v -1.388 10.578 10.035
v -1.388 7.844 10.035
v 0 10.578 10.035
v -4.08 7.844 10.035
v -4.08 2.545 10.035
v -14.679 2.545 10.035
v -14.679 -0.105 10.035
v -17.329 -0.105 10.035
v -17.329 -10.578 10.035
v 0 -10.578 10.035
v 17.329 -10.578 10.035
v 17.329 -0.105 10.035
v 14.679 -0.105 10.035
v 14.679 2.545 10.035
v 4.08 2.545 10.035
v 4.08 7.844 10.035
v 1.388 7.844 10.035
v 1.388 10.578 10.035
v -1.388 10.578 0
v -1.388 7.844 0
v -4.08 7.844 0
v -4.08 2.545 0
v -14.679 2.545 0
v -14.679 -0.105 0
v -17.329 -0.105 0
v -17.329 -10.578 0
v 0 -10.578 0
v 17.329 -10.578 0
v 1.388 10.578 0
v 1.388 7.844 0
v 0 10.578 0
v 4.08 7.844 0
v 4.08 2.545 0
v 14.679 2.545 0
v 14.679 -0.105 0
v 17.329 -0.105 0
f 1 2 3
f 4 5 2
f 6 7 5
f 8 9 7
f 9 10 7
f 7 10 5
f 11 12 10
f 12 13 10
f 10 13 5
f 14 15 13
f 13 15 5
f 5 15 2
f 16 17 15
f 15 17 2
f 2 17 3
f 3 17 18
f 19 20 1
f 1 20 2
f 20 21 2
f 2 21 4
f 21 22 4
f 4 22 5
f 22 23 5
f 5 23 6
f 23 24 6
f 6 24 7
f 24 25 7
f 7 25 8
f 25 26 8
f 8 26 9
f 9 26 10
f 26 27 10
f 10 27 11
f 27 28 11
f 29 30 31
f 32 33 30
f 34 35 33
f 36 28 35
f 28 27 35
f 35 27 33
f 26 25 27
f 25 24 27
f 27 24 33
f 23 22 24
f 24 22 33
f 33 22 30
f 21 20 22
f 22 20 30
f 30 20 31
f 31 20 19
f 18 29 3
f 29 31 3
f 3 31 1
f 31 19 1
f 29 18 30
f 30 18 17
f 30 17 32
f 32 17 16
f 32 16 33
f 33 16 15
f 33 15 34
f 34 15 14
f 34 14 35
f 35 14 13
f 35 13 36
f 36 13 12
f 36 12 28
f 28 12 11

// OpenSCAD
module invaders_v2_canon() 
{
	polyhedron(
		points=[
			[-1.387962, 10.57798, 10.03544],
			[-1.387962, 7.844114, 10.03544],
			[0.0, 10.57798, 10.03544],
			[-4.079773, 7.844114, 10.03544],
			[-4.079773, 2.544603, 10.03544],
			[-1.387962, 7.844114, 10.03544],
			[-14.67878, 2.544603, 10.03544],
			[-14.67878, -0.1051502, 10.03544],
			[-4.079773, 2.544603, 10.03544],
			[-17.32853, -0.1051502, 10.03544],
			[-17.32853, -10.57798, 10.03544],
			[-14.67878, -0.1051502, 10.03544],
			[-17.32853, -10.57798, 10.03544],
			[0.0, -10.57798, 10.03544],
			[-14.67878, -0.1051502, 10.03544],
			[-14.67878, -0.1051502, 10.03544],
			[0.0, -10.57798, 10.03544],
			[-4.079773, 2.544603, 10.03544],
			[17.32853, -10.57798, 10.03544],
			[17.32853, -0.1051502, 10.03544],
			[0.0, -10.57798, 10.03544],
			[17.32853, -0.1051502, 10.03544],
			[14.67878, -0.1051502, 10.03544],
			[0.0, -10.57798, 10.03544],
			[0.0, -10.57798, 10.03544],
			[14.67878, -0.1051502, 10.03544],
			[-4.079773, 2.544603, 10.03544],
			[14.67878, 2.544603, 10.03544],
			[4.079773, 2.544603, 10.03544],
			[14.67878, -0.1051502, 10.03544],
			[14.67878, -0.1051502, 10.03544],
			[4.079773, 2.544603, 10.03544],
			[-4.079773, 2.544603, 10.03544],
			[-4.079773, 2.544603, 10.03544],
			[4.079773, 2.544603, 10.03544],
			[-1.387962, 7.844114, 10.03544],
			[4.079773, 7.844114, 10.03544],
			[1.387962, 7.844114, 10.03544],
			[4.079773, 2.544603, 10.03544],
			[4.079773, 2.544603, 10.03544],
			[1.387962, 7.844114, 10.03544],
			[-1.387962, 7.844114, 10.03544],
			[-1.387962, 7.844114, 10.03544],
			[1.387962, 7.844114, 10.03544],
			[0.0, 10.57798, 10.03544],
			[0.0, 10.57798, 10.03544],
			[1.387962, 7.844114, 10.03544],
			[1.387962, 10.57798, 10.03544],
			[-1.387962, 10.57798, 0.0],
			[-1.387962, 7.844114, 2.220446e-16],
			[-1.387962, 10.57798, 10.03544],
			[-1.387962, 10.57798, 10.03544],
			[-1.387962, 7.844114, 2.220446e-16],
			[-1.387962, 7.844114, 10.03544],
			[-1.387962, 7.844114, 2.220446e-16],
			[-4.079773, 7.844114, 2.220446e-16],
			[-1.387962, 7.844114, 10.03544],
			[-1.387962, 7.844114, 10.03544],
			[-4.079773, 7.844114, 2.220446e-16],
			[-4.079773, 7.844114, 10.03544],
			[-4.079773, 7.844114, 2.220446e-16],
			[-4.079773, 2.544603, 4.440892e-16],
			[-4.079773, 7.844114, 10.03544],
			[-4.079773, 7.844114, 10.03544],
			[-4.079773, 2.544603, 4.440892e-16],
			[-4.079773, 2.544603, 10.03544],
			[-4.079773, 2.544603, 4.440892e-16],
			[-14.67878, 2.544603, 4.440892e-16],
			[-4.079773, 2.544603, 10.03544],
			[-4.079773, 2.544603, 10.03544],
			[-14.67878, 2.544603, 4.440892e-16],
			[-14.67878, 2.544603, 10.03544],
			[-14.67878, 2.544603, 4.440892e-16],
			[-14.67878, -0.1051502, 6.661338e-16],
			[-14.67878, 2.544603, 10.03544],
			[-14.67878, 2.544603, 10.03544],
			[-14.67878, -0.1051502, 6.661338e-16],
			[-14.67878, -0.1051502, 10.03544],
			[-14.67878, -0.1051502, 6.661338e-16],
			[-17.32853, -0.1051502, 6.661338e-16],
			[-14.67878, -0.1051502, 10.03544],
			[-14.67878, -0.1051502, 10.03544],
			[-17.32853, -0.1051502, 6.661338e-16],
			[-17.32853, -0.1051502, 10.03544],
			[-17.32853, -0.1051502, 6.661338e-16],
			[-17.32853, -10.57798, 1.332268e-15],
			[-17.32853, -0.1051502, 10.03544],
			[-17.32853, -0.1051502, 10.03544],
			[-17.32853, -10.57798, 1.332268e-15],
			[-17.32853, -10.57798, 10.03544],
			[-17.32853, -10.57798, 10.03544],
			[-17.32853, -10.57798, 1.332268e-15],
			[0.0, -10.57798, 10.03544],
			[-17.32853, -10.57798, 1.332268e-15],
			[0.0, -10.57798, 1.332268e-15],
			[0.0, -10.57798, 10.03544],
			[0.0, -10.57798, 10.03544],
			[0.0, -10.57798, 1.332268e-15],
			[17.32853, -10.57798, 10.03544],
			[0.0, -10.57798, 1.332268e-15],
			[17.32853, -10.57798, 1.332268e-15],
			[17.32853, -10.57798, 10.03544],
			[1.387962, 10.57798, 0.0],
			[1.387962, 7.844114, 2.220446e-16],
			[0.0, 10.57798, 0.0],
			[4.079773, 7.844114, 2.220446e-16],
			[4.079773, 2.544603, 4.440892e-16],
			[1.387962, 7.844114, 2.220446e-16],
			[14.67878, 2.544603, 4.440892e-16],
			[14.67878, -0.1051502, 6.661338e-16],
			[4.079773, 2.544603, 4.440892e-16],
			[17.32853, -0.1051502, 6.661338e-16],
			[17.32853, -10.57798, 1.332268e-15],
			[14.67878, -0.1051502, 6.661338e-16],
			[17.32853, -10.57798, 1.332268e-15],
			[0.0, -10.57798, 1.332268e-15],
			[14.67878, -0.1051502, 6.661338e-16],
			[14.67878, -0.1051502, 6.661338e-16],
			[0.0, -10.57798, 1.332268e-15],
			[4.079773, 2.544603, 4.440892e-16],
			[-17.32853, -10.57798, 1.332268e-15],
			[-17.32853, -0.1051502, 6.661338e-16],
			[0.0, -10.57798, 1.332268e-15],
			[-17.32853, -0.1051502, 6.661338e-16],
			[-14.67878, -0.1051502, 6.661338e-16],
			[0.0, -10.57798, 1.332268e-15],
			[0.0, -10.57798, 1.332268e-15],
			[-14.67878, -0.1051502, 6.661338e-16],
			[4.079773, 2.544603, 4.440892e-16],
			[-14.67878, 2.544603, 4.440892e-16],
			[-4.079773, 2.544603, 4.440892e-16],
			[-14.67878, -0.1051502, 6.661338e-16],
			[-14.67878, -0.1051502, 6.661338e-16],
			[-4.079773, 2.544603, 4.440892e-16],
			[4.079773, 2.544603, 4.440892e-16],
			[4.079773, 2.544603, 4.440892e-16],
			[-4.079773, 2.544603, 4.440892e-16],
			[1.387962, 7.844114, 2.220446e-16],
			[-4.079773, 7.844114, 2.220446e-16],
			[-1.387962, 7.844114, 2.220446e-16],
			[-4.079773, 2.544603, 4.440892e-16],
			[-4.079773, 2.544603, 4.440892e-16],
			[-1.387962, 7.844114, 2.220446e-16],
			[1.387962, 7.844114, 2.220446e-16],
			[1.387962, 7.844114, 2.220446e-16],
			[-1.387962, 7.844114, 2.220446e-16],
			[0.0, 10.57798, 0.0],
			[0.0, 10.57798, 0.0],
			[-1.387962, 7.844114, 2.220446e-16],
			[-1.387962, 10.57798, 0.0],
			[1.387962, 10.57798, 10.03544],
			[1.387962, 10.57798, 0.0],
			[0.0, 10.57798, 10.03544],
			[1.387962, 10.57798, 0.0],
			[0.0, 10.57798, 0.0],
			[0.0, 10.57798, 10.03544],
			[0.0, 10.57798, 10.03544],
			[0.0, 10.57798, 0.0],
			[-1.387962, 10.57798, 10.03544],
			[0.0, 10.57798, 0.0],
			[-1.387962, 10.57798, 0.0],
			[-1.387962, 10.57798, 10.03544],
			[1.387962, 10.57798, 0.0],
			[1.387962, 10.57798, 10.03544],
			[1.387962, 7.844114, 2.220446e-16],
			[1.387962, 7.844114, 2.220446e-16],
			[1.387962, 10.57798, 10.03544],
			[1.387962, 7.844114, 10.03544],
			[1.387962, 7.844114, 2.220446e-16],
			[1.387962, 7.844114, 10.03544],
			[4.079773, 7.844114, 2.220446e-16],
			[4.079773, 7.844114, 2.220446e-16],
			[1.387962, 7.844114, 10.03544],
			[4.079773, 7.844114, 10.03544],
			[4.079773, 7.844114, 2.220446e-16],
			[4.079773, 7.844114, 10.03544],
			[4.079773, 2.544603, 4.440892e-16],
			[4.079773, 2.544603, 4.440892e-16],
			[4.079773, 7.844114, 10.03544],
			[4.079773, 2.544603, 10.03544],
			[4.079773, 2.544603, 4.440892e-16],
			[4.079773, 2.544603, 10.03544],
			[14.67878, 2.544603, 4.440892e-16],
			[14.67878, 2.544603, 4.440892e-16],
			[4.079773, 2.544603, 10.03544],
			[14.67878, 2.544603, 10.03544],
			[14.67878, 2.544603, 4.440892e-16],
			[14.67878, 2.544603, 10.03544],
			[14.67878, -0.1051502, 6.661338e-16],
			[14.67878, -0.1051502, 6.661338e-16],
			[14.67878, 2.544603, 10.03544],
			[14.67878, -0.1051502, 10.03544],
			[14.67878, -0.1051502, 6.661338e-16],
			[14.67878, -0.1051502, 10.03544],
			[17.32853, -0.1051502, 6.661338e-16],
			[17.32853, -0.1051502, 6.661338e-16],
			[14.67878, -0.1051502, 10.03544],
			[17.32853, -0.1051502, 10.03544],
			[17.32853, -0.1051502, 6.661338e-16],
			[17.32853, -0.1051502, 10.03544],
			[17.32853, -10.57798, 1.332268e-15],
			[17.32853, -10.57798, 1.332268e-15],
			[17.32853, -0.1051502, 10.03544],
			[17.32853, -10.57798, 10.03544]
		],
		faces=[
			[0, 1, 2],
			[3, 4, 5],
			[6, 7, 8],
			[9, 10, 11],
			[12, 13, 14],
			[15, 16, 17],
			[18, 19, 20],
			[21, 22, 23],
			[24, 25, 26],
			[27, 28, 29],
			[30, 31, 32],
			[33, 34, 35],
			[36, 37, 38],
			[39, 40, 41],
			[42, 43, 44],
			[45, 46, 47],
			[48, 49, 50],
			[51, 52, 53],
			[54, 55, 56],
			[57, 58, 59],
			[60, 61, 62],
			[63, 64, 65],
			[66, 67, 68],
			[69, 70, 71],
			[72, 73, 74],
			[75, 76, 77],
			[78, 79, 80],
			[81, 82, 83],
			[84, 85, 86],
			[87, 88, 89],
			[90, 91, 92],
			[93, 94, 95],
			[96, 97, 98],
			[99, 100, 101],
			[102, 103, 104],
			[105, 106, 107],
			[108, 109, 110],
			[111, 112, 113],
			[114, 115, 116],
			[117, 118, 119],
			[120, 121, 122],
			[123, 124, 125],
			[126, 127, 128],
			[129, 130, 131],
			[132, 133, 134],
			[135, 136, 137],
			[138, 139, 140],
			[141, 142, 143],
			[144, 145, 146],
			[147, 148, 149],
			[150, 151, 152],
			[153, 154, 155],
			[156, 157, 158],
			[159, 160, 161],
			[162, 163, 164],
			[165, 166, 167],
			[168, 169, 170],
			[171, 172, 173],
			[174, 175, 176],
			[177, 178, 179],
			[180, 181, 182],
			[183, 184, 185],
			[186, 187, 188],
			[189, 190, 191],
			[192, 193, 194],
			[195, 196, 197],
			[198, 199, 200],
			[201, 202, 203]
		]
	);
}


invaders_v2_canon();
